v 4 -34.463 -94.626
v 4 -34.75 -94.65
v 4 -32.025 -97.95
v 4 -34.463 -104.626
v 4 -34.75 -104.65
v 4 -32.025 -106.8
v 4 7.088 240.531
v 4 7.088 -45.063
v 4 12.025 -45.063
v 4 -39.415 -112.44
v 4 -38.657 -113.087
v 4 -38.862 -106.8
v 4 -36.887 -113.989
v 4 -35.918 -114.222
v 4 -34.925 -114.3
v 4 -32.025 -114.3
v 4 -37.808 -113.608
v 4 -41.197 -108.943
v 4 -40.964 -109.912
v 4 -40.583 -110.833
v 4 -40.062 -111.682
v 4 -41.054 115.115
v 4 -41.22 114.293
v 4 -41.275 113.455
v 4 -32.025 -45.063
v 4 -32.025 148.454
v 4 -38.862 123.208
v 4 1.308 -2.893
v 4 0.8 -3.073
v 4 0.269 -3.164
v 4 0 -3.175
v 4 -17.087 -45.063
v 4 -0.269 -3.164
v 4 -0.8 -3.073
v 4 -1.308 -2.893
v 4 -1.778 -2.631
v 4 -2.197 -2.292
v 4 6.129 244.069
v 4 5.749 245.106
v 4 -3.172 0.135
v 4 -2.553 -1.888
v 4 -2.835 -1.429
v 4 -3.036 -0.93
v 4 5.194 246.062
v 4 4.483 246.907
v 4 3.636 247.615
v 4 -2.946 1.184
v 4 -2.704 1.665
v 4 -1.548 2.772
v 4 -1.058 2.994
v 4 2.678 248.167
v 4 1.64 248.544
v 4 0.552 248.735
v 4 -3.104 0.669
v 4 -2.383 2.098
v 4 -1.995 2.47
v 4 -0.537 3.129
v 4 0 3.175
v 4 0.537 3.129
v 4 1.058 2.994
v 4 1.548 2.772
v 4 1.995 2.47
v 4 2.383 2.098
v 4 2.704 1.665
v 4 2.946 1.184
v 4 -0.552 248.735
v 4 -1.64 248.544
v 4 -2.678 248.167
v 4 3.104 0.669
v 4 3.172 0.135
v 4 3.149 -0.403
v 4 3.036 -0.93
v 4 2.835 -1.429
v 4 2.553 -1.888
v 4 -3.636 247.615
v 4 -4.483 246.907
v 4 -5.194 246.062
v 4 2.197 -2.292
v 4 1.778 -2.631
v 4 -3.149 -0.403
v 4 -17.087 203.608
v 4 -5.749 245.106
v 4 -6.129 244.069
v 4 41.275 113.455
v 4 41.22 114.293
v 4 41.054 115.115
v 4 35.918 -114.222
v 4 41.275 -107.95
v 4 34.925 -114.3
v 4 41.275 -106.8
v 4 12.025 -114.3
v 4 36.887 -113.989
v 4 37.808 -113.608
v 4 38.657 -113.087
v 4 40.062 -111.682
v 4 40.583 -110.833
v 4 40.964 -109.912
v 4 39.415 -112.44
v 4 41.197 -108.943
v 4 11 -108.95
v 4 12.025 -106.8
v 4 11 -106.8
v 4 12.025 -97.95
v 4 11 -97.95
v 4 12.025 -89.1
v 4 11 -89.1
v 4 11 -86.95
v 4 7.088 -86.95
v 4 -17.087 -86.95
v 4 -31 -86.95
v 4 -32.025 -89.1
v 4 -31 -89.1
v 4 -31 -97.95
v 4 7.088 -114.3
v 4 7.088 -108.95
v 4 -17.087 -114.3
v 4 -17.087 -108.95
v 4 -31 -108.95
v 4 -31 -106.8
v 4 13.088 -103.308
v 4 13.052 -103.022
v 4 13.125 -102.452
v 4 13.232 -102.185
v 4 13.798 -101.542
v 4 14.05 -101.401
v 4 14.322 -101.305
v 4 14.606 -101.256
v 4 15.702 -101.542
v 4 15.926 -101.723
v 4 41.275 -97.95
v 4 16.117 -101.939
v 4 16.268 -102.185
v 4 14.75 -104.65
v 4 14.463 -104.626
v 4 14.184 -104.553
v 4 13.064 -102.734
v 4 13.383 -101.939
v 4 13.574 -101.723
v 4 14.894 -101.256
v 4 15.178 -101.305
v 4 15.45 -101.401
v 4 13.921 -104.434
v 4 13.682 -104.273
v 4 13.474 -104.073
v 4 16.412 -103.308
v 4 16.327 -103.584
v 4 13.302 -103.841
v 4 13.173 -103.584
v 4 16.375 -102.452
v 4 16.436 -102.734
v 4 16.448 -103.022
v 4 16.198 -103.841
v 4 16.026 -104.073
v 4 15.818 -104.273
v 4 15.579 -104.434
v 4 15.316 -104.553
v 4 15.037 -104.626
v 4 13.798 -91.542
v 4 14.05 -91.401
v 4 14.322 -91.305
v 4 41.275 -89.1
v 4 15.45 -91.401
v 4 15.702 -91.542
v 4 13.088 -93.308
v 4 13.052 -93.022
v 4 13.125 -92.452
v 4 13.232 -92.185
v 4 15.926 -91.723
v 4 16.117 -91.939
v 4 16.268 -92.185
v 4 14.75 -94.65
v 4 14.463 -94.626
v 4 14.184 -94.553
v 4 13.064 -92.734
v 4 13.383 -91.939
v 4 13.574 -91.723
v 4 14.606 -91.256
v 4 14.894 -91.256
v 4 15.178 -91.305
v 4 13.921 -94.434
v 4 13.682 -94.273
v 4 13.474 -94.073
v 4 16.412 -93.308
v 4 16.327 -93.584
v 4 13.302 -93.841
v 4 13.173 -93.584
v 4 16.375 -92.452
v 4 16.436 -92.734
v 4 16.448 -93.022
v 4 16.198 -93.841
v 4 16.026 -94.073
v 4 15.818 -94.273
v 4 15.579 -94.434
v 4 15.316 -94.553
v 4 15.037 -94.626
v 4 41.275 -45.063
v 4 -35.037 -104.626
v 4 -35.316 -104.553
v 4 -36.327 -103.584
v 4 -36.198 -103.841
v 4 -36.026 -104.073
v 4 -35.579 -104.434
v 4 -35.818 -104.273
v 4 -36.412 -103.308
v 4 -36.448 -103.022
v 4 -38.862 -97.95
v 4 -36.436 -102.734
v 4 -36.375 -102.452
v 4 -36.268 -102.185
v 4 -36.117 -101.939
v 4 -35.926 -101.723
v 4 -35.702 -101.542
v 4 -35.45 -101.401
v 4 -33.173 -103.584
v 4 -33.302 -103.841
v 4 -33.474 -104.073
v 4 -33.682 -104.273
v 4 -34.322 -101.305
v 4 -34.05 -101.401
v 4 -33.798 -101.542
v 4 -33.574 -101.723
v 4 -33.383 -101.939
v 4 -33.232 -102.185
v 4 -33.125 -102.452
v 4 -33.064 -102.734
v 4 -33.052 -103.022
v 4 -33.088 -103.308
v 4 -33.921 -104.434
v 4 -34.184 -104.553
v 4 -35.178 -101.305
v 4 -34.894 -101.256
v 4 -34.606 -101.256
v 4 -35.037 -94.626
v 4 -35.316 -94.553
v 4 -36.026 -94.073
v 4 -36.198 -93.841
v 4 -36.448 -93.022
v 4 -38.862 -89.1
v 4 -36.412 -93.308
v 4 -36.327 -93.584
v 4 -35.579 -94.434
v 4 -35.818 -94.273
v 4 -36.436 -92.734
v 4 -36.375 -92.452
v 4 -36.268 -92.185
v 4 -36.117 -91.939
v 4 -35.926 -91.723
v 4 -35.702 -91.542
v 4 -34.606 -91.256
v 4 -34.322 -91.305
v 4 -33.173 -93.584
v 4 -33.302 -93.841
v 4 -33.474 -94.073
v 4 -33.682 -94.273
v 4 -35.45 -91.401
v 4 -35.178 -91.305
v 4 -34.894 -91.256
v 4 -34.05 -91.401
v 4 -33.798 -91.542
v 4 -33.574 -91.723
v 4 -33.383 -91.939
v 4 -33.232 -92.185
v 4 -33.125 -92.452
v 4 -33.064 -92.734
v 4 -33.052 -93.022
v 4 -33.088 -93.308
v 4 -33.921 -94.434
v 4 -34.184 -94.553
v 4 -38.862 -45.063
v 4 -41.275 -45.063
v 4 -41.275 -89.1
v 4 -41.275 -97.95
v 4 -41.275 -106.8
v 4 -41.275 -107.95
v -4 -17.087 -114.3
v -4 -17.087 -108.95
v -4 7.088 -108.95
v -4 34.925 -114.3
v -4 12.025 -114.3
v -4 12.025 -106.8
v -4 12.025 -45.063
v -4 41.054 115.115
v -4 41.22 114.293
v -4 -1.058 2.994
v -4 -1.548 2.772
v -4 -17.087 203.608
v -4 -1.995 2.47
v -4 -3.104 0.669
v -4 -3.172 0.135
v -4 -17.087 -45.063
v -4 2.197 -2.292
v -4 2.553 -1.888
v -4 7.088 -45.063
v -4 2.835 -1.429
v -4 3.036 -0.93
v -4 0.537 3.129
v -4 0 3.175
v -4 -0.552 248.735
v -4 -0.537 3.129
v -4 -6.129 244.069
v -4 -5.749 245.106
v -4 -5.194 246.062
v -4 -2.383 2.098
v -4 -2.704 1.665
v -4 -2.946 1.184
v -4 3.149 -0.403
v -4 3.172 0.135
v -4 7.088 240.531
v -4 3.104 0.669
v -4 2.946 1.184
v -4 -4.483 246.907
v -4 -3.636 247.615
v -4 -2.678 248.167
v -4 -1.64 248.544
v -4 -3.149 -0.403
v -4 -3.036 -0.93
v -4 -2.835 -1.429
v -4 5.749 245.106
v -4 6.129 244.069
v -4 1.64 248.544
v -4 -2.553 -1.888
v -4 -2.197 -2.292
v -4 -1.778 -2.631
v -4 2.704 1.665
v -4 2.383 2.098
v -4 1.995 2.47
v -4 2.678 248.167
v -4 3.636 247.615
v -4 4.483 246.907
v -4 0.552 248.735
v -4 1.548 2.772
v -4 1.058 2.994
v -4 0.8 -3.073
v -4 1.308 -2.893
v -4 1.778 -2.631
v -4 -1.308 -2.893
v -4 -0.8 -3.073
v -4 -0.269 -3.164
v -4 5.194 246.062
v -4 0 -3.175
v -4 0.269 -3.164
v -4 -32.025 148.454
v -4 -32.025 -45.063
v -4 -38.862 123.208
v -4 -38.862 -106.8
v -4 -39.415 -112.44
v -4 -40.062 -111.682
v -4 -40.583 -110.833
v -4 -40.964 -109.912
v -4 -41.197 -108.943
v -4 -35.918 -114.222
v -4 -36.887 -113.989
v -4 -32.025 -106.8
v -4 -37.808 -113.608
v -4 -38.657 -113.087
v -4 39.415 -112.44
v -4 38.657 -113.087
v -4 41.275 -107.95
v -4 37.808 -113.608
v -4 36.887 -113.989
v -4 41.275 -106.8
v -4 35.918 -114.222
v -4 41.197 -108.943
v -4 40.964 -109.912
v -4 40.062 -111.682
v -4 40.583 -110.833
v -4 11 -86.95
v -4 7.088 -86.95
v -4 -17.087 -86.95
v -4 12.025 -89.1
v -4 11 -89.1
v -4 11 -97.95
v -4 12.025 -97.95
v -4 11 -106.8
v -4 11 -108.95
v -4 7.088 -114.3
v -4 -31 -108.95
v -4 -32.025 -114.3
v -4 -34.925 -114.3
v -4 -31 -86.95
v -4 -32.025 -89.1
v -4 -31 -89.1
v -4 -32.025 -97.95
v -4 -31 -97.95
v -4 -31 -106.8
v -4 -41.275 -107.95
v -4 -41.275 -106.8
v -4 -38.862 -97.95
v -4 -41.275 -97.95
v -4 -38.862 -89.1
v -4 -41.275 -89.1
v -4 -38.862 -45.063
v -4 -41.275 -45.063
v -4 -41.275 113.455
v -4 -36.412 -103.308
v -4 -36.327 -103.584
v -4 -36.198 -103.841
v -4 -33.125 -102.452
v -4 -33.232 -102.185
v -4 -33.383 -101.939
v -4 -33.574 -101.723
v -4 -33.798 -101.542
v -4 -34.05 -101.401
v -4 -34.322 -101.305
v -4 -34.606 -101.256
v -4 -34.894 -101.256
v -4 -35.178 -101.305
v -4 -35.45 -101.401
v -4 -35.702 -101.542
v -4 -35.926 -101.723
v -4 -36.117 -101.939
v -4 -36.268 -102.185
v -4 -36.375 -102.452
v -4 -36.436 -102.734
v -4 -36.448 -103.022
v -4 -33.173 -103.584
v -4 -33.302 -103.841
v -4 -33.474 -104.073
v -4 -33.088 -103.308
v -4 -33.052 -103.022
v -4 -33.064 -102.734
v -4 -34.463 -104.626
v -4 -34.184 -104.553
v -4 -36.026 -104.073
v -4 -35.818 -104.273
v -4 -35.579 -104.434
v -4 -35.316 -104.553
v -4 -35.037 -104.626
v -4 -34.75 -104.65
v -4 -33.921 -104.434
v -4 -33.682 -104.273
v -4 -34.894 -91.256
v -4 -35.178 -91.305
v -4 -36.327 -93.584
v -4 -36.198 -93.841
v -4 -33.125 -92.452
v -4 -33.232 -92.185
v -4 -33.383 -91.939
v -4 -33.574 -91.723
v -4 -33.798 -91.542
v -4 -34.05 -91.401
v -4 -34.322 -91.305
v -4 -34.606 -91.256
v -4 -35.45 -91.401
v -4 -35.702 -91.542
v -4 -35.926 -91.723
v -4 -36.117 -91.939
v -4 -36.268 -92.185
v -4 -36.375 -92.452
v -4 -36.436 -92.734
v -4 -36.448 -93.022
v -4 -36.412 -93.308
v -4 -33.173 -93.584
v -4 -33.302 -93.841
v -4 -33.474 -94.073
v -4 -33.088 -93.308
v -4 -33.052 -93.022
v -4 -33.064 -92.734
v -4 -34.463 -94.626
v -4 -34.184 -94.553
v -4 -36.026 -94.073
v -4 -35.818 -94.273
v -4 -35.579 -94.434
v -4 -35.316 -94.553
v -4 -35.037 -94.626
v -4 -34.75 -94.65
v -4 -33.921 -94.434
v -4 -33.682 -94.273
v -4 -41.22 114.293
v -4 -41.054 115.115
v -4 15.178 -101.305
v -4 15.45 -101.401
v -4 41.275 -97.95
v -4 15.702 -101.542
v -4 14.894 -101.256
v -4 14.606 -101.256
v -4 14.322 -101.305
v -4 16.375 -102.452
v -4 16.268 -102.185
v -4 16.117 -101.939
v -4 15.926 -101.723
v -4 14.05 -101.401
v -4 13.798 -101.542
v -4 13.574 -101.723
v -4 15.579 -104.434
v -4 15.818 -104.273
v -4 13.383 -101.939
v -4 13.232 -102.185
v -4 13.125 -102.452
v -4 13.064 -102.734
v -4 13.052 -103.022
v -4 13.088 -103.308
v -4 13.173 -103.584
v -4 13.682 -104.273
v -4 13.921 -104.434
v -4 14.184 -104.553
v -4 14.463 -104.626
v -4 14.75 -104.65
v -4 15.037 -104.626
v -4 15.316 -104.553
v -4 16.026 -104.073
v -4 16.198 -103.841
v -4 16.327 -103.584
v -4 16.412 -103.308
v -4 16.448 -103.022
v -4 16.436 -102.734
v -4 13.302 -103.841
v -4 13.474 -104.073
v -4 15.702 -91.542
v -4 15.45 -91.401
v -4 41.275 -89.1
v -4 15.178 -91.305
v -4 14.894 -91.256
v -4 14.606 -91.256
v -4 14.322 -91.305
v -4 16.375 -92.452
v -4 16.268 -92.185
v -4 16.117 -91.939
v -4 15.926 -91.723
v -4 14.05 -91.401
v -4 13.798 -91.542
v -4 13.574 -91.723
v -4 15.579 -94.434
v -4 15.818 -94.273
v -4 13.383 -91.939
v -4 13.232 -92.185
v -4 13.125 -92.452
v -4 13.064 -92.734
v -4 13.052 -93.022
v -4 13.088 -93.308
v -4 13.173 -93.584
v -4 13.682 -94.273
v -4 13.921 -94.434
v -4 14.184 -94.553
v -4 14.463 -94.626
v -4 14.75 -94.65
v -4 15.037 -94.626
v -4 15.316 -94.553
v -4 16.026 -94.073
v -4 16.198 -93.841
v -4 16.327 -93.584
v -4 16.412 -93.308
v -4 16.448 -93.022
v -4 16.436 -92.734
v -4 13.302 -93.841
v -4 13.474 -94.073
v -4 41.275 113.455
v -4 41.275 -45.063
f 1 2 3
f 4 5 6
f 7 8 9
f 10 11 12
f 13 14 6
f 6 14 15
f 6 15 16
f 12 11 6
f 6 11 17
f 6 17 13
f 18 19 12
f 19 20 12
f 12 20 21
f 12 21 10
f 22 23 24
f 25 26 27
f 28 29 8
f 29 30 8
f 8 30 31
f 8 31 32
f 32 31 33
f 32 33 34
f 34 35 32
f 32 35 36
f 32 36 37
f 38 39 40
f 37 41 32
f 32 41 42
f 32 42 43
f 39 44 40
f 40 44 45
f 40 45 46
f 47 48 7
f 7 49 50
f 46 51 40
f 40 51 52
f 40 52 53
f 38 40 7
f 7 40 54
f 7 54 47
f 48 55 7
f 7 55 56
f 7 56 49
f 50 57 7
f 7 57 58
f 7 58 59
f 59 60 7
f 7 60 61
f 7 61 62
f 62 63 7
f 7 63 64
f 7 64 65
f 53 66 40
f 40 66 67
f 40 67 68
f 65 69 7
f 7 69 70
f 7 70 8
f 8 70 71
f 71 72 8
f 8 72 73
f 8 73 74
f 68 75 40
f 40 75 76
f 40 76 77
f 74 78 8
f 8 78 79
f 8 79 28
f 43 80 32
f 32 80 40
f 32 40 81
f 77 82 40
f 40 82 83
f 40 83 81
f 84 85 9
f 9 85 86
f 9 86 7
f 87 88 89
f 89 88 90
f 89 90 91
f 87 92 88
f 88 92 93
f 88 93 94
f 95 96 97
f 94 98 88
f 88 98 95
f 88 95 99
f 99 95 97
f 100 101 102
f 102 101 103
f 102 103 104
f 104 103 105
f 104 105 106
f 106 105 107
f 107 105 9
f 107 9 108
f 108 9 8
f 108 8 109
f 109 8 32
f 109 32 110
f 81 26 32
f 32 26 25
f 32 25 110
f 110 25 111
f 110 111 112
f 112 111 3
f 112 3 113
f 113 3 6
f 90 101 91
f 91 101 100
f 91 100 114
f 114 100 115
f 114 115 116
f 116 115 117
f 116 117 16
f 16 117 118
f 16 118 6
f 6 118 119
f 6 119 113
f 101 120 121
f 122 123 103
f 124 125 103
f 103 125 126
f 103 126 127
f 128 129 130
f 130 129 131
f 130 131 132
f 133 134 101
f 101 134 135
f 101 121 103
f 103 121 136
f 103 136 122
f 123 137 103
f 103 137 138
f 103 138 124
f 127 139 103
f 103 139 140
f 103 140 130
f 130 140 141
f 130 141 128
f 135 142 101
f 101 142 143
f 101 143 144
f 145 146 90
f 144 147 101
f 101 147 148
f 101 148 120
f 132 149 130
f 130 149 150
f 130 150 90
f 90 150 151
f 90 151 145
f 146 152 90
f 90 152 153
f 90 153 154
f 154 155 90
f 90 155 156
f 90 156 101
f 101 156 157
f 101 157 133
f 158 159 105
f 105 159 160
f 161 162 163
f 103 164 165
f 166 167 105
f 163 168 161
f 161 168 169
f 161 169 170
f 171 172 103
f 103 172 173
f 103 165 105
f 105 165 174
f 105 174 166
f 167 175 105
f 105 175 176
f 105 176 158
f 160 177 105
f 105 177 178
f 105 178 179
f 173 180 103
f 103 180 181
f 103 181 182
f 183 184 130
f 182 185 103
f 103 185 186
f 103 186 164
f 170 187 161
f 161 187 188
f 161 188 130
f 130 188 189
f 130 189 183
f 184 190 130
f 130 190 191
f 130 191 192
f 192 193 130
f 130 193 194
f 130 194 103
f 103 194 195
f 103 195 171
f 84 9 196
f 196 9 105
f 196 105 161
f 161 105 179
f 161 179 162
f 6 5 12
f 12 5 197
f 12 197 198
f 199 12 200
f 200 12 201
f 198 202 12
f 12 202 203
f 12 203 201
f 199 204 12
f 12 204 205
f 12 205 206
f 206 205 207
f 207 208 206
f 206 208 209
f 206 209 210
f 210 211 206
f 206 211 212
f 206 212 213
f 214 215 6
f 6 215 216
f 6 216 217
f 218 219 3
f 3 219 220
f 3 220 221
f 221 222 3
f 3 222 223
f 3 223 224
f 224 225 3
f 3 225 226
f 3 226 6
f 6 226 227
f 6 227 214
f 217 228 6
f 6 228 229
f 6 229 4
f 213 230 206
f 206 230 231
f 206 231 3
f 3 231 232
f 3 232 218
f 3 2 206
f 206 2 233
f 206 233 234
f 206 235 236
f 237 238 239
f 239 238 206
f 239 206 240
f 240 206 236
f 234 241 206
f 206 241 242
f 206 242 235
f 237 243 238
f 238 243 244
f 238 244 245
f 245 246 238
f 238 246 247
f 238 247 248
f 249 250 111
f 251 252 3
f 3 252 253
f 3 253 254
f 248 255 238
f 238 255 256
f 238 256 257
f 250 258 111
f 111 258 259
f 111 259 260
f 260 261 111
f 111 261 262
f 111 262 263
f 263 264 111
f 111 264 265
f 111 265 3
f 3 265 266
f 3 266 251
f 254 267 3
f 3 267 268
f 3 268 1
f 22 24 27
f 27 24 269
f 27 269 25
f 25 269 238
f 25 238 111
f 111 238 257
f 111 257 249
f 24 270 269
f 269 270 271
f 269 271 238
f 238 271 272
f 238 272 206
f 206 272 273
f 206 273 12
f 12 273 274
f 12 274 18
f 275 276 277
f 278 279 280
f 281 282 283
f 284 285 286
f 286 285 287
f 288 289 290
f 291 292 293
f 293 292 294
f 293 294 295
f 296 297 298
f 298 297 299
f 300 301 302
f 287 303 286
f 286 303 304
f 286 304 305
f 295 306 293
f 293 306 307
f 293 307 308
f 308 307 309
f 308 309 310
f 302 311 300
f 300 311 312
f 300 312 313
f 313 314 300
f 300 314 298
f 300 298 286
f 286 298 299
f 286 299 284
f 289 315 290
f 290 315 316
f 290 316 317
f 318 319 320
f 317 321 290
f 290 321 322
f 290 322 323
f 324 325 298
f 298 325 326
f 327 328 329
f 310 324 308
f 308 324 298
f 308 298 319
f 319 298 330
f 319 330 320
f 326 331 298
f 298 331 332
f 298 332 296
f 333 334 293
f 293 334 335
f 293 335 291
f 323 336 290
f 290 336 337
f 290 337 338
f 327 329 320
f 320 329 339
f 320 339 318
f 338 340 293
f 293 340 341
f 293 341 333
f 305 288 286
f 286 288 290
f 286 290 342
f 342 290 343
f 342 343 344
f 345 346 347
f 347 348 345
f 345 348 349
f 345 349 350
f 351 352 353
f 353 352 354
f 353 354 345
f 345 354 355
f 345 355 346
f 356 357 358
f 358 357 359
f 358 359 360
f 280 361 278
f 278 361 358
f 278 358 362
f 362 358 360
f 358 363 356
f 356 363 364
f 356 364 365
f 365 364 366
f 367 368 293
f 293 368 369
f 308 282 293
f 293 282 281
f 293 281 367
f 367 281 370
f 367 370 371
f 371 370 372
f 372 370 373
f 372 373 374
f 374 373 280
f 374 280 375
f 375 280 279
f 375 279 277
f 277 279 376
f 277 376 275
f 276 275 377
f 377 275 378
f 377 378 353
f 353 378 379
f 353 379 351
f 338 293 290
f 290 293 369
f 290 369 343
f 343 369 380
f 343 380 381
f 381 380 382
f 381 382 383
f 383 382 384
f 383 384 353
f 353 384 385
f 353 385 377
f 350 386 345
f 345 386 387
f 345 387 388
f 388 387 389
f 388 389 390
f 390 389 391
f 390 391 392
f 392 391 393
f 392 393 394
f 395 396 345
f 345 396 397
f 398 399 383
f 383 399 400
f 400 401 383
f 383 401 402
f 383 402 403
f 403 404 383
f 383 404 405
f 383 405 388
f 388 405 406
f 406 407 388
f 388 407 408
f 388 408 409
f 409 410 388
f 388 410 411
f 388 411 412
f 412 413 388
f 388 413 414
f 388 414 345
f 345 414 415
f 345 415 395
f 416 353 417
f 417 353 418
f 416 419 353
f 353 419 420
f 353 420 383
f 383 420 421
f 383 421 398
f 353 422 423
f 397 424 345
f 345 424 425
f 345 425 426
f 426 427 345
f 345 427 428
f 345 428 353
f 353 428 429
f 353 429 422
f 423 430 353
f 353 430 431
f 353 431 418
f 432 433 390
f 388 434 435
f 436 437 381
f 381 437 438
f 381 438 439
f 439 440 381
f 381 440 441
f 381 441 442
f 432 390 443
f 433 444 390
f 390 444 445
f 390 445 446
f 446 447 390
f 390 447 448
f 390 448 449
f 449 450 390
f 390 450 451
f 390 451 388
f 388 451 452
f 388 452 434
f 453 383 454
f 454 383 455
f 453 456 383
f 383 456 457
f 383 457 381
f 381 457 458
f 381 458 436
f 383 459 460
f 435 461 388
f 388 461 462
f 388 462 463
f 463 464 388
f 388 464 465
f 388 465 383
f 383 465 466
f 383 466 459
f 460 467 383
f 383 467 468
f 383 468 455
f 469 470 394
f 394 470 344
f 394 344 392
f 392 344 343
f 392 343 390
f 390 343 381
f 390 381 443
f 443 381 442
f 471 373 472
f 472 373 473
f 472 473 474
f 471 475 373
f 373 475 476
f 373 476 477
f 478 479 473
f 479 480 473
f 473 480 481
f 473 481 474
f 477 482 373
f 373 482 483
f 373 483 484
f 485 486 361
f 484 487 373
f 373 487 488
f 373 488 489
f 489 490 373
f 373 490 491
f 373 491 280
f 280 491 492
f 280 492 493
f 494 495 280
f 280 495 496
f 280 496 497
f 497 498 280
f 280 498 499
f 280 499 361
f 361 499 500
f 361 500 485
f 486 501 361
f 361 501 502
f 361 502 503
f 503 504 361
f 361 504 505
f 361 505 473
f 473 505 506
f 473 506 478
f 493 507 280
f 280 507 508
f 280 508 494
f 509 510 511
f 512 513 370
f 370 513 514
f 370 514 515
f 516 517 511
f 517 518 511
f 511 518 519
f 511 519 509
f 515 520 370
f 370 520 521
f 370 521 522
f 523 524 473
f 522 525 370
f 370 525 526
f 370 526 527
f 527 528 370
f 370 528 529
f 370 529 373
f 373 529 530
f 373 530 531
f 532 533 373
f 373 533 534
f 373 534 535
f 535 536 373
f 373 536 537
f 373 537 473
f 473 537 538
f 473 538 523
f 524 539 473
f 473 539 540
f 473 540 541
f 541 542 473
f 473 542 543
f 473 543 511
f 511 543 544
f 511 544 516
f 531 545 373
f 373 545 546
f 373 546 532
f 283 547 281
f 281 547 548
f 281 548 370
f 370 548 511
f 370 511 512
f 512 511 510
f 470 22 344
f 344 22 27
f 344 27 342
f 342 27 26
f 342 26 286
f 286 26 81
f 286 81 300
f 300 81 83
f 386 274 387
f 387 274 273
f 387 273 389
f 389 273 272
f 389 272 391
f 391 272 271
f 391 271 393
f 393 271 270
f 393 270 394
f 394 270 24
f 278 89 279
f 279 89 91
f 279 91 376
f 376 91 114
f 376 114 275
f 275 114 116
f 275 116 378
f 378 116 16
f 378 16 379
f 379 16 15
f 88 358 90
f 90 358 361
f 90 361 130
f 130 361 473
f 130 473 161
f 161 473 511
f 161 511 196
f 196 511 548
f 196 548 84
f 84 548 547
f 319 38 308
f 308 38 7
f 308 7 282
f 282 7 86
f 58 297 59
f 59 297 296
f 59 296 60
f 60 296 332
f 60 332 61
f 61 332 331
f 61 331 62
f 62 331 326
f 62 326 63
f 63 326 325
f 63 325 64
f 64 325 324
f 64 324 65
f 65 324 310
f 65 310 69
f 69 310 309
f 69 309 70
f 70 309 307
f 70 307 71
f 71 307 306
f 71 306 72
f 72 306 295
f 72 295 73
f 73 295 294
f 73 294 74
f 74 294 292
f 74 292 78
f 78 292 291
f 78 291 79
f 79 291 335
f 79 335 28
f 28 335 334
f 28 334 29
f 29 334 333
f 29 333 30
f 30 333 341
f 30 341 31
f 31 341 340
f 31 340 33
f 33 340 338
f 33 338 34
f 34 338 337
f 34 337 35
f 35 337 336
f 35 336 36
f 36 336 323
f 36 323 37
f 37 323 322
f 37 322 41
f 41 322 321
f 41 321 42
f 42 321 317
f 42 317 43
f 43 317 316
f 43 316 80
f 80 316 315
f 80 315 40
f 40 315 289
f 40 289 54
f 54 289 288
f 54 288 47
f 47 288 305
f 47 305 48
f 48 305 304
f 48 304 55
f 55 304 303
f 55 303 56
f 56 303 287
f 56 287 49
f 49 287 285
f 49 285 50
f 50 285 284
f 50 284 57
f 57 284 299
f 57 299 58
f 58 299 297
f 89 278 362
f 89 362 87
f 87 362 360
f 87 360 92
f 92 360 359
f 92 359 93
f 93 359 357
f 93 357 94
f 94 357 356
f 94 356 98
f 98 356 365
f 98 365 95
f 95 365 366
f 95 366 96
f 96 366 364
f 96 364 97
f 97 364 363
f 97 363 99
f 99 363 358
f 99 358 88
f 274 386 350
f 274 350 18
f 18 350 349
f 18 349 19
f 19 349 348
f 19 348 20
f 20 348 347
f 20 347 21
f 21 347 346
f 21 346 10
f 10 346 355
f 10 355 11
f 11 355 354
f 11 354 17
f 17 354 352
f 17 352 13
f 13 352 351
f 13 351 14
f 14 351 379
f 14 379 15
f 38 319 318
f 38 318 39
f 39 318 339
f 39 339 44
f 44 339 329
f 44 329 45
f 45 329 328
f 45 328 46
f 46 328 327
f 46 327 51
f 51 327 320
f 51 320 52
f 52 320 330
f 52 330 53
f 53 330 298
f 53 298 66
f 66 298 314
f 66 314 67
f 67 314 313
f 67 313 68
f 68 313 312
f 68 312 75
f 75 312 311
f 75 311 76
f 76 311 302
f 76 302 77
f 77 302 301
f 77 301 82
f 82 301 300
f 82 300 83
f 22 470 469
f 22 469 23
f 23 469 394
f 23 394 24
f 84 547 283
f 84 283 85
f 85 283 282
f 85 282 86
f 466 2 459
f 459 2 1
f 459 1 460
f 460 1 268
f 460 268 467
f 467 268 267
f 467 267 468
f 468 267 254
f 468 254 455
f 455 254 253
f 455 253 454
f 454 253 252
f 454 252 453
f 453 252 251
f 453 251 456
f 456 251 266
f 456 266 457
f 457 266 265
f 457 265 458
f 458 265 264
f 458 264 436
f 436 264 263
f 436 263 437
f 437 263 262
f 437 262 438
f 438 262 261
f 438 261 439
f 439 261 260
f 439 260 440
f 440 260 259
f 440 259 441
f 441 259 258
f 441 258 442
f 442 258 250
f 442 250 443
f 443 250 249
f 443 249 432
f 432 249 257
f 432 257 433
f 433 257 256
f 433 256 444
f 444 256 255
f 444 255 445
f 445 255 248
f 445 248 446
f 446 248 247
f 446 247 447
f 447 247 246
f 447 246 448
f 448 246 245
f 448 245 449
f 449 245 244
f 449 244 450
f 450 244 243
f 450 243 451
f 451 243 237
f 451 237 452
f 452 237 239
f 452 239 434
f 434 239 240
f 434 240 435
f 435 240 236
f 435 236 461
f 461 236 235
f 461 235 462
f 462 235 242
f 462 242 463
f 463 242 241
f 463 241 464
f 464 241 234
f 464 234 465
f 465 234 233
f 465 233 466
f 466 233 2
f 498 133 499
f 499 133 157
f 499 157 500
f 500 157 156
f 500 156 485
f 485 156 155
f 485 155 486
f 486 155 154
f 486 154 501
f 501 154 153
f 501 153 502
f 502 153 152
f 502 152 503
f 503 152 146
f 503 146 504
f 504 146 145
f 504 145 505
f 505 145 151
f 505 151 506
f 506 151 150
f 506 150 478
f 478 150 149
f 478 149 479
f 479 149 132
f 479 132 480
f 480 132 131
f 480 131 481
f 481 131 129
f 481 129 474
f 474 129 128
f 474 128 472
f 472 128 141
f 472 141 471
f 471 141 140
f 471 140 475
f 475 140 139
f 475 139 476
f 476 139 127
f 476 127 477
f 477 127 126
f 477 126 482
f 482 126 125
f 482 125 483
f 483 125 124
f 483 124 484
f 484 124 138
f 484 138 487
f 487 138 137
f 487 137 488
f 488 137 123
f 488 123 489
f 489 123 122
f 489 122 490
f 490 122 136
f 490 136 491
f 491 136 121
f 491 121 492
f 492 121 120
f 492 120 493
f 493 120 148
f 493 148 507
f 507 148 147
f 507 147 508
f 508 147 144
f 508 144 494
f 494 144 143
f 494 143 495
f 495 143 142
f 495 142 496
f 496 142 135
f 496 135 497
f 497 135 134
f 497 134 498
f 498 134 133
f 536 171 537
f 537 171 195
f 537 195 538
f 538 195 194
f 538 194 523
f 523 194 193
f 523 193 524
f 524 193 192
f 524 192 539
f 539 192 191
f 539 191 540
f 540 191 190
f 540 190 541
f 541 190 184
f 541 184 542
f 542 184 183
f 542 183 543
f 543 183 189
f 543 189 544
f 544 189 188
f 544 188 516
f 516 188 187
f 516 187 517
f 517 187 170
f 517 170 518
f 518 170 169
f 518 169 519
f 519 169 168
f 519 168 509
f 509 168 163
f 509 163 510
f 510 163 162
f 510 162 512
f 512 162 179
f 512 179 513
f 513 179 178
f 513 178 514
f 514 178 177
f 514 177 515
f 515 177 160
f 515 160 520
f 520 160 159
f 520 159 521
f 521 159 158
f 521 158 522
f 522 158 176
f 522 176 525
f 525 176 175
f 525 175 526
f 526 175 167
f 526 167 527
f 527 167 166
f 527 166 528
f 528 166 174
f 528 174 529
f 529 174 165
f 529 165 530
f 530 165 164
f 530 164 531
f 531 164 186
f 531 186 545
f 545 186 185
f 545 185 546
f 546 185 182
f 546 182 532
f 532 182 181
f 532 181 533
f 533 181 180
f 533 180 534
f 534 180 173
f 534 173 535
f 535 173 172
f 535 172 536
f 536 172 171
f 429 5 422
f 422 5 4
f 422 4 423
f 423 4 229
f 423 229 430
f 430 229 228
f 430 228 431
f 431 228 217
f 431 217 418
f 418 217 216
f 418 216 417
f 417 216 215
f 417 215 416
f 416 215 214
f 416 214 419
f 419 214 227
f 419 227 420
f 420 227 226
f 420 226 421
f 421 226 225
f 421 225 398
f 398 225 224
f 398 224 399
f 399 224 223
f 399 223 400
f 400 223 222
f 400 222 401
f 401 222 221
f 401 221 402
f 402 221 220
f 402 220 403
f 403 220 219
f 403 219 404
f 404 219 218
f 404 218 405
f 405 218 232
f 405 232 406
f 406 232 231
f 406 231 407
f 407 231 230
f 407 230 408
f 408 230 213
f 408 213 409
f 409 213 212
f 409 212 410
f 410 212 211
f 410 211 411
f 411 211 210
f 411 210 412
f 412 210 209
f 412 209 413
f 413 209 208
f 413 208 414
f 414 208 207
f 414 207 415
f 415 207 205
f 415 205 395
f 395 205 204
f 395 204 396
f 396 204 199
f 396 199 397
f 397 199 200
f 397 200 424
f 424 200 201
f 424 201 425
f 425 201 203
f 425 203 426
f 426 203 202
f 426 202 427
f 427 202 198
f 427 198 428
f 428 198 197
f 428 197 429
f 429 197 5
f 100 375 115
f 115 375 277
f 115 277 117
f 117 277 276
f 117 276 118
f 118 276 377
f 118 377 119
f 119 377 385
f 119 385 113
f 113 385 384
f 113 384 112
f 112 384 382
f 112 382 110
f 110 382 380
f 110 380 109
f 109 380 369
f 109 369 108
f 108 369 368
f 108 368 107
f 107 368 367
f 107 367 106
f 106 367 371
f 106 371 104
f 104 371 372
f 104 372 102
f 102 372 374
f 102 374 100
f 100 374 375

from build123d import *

# Parameters (mm, degrees)
SKETCH1_R           = 3.175
BOSS_EXTRUDE2_DEPTH = 4.0005
FILLET1_R           = 6.35
SKETCH6_R           = 1.7
CUT_EXTRUDE2_DEPTH  = 253.287066958
SKETCH5_W           = 42
SKETCH5_H           = 22
CUT_EXTRUDE1_DEPTH  = 253.287066958


with BuildPart() as part:
    # Sketch1 → Boss-Extrude2 (new, symmetric)
    with BuildSketch(Plane.YZ):
        Polygon((-41.275, 114.3), (-41.275, -114.3), (41.275, -114.3), (41.275, 114.3), (0, 266.7), align=None)
        with Locations(Location((0, 0, 0), (0, 0, 270))):
            Circle(SKETCH1_R, mode=Mode.SUBTRACT)
    extrude(amount=BOSS_EXTRUDE2_DEPTH, both=True)

    # Fillet1
    fillet1_edges = [part.edges().sort_by_distance(p)[0] for p in [
        (0, 0, 266.7),
        (0, 41.275, 114.3),
        (0, 41.275, -114.3),
        (0, -41.275, -114.3),
        (0, -41.275, 114.3),
    ]]
    fillet(fillet1_edges, radius=FILLET1_R)

    # Sketch6 → Cut-Extrude2 (cut, through all)
    with BuildSketch(Plane.YZ.offset(4.0005)):
        with Locations(Location((-34.75, -92.95, 0), (0, 0, 270))):
            Circle(SKETCH6_R)
        with Locations(Location((-34.75, -102.95, 0), (0, 0, 270))):
            Circle(SKETCH6_R)
        with Locations(Location((14.75, -92.95, 0), (0, 0, 270))):
            Circle(SKETCH6_R)
        with Locations(Location((14.75, -102.95, 0), (0, 0, 270))):
            Circle(SKETCH6_R)
    extrude(amount=-CUT_EXTRUDE2_DEPTH, mode=Mode.SUBTRACT)

    # Sketch5 → Cut-Extrude1 (cut, through all)
    with BuildSketch(Plane.YZ.offset(4.0005)):
        with Locations((-10, -97.95)):
            Rectangle(SKETCH5_W, SKETCH5_H)
    extrude(amount=-CUT_EXTRUDE1_DEPTH, mode=Mode.SUBTRACT)


solid = part.part
